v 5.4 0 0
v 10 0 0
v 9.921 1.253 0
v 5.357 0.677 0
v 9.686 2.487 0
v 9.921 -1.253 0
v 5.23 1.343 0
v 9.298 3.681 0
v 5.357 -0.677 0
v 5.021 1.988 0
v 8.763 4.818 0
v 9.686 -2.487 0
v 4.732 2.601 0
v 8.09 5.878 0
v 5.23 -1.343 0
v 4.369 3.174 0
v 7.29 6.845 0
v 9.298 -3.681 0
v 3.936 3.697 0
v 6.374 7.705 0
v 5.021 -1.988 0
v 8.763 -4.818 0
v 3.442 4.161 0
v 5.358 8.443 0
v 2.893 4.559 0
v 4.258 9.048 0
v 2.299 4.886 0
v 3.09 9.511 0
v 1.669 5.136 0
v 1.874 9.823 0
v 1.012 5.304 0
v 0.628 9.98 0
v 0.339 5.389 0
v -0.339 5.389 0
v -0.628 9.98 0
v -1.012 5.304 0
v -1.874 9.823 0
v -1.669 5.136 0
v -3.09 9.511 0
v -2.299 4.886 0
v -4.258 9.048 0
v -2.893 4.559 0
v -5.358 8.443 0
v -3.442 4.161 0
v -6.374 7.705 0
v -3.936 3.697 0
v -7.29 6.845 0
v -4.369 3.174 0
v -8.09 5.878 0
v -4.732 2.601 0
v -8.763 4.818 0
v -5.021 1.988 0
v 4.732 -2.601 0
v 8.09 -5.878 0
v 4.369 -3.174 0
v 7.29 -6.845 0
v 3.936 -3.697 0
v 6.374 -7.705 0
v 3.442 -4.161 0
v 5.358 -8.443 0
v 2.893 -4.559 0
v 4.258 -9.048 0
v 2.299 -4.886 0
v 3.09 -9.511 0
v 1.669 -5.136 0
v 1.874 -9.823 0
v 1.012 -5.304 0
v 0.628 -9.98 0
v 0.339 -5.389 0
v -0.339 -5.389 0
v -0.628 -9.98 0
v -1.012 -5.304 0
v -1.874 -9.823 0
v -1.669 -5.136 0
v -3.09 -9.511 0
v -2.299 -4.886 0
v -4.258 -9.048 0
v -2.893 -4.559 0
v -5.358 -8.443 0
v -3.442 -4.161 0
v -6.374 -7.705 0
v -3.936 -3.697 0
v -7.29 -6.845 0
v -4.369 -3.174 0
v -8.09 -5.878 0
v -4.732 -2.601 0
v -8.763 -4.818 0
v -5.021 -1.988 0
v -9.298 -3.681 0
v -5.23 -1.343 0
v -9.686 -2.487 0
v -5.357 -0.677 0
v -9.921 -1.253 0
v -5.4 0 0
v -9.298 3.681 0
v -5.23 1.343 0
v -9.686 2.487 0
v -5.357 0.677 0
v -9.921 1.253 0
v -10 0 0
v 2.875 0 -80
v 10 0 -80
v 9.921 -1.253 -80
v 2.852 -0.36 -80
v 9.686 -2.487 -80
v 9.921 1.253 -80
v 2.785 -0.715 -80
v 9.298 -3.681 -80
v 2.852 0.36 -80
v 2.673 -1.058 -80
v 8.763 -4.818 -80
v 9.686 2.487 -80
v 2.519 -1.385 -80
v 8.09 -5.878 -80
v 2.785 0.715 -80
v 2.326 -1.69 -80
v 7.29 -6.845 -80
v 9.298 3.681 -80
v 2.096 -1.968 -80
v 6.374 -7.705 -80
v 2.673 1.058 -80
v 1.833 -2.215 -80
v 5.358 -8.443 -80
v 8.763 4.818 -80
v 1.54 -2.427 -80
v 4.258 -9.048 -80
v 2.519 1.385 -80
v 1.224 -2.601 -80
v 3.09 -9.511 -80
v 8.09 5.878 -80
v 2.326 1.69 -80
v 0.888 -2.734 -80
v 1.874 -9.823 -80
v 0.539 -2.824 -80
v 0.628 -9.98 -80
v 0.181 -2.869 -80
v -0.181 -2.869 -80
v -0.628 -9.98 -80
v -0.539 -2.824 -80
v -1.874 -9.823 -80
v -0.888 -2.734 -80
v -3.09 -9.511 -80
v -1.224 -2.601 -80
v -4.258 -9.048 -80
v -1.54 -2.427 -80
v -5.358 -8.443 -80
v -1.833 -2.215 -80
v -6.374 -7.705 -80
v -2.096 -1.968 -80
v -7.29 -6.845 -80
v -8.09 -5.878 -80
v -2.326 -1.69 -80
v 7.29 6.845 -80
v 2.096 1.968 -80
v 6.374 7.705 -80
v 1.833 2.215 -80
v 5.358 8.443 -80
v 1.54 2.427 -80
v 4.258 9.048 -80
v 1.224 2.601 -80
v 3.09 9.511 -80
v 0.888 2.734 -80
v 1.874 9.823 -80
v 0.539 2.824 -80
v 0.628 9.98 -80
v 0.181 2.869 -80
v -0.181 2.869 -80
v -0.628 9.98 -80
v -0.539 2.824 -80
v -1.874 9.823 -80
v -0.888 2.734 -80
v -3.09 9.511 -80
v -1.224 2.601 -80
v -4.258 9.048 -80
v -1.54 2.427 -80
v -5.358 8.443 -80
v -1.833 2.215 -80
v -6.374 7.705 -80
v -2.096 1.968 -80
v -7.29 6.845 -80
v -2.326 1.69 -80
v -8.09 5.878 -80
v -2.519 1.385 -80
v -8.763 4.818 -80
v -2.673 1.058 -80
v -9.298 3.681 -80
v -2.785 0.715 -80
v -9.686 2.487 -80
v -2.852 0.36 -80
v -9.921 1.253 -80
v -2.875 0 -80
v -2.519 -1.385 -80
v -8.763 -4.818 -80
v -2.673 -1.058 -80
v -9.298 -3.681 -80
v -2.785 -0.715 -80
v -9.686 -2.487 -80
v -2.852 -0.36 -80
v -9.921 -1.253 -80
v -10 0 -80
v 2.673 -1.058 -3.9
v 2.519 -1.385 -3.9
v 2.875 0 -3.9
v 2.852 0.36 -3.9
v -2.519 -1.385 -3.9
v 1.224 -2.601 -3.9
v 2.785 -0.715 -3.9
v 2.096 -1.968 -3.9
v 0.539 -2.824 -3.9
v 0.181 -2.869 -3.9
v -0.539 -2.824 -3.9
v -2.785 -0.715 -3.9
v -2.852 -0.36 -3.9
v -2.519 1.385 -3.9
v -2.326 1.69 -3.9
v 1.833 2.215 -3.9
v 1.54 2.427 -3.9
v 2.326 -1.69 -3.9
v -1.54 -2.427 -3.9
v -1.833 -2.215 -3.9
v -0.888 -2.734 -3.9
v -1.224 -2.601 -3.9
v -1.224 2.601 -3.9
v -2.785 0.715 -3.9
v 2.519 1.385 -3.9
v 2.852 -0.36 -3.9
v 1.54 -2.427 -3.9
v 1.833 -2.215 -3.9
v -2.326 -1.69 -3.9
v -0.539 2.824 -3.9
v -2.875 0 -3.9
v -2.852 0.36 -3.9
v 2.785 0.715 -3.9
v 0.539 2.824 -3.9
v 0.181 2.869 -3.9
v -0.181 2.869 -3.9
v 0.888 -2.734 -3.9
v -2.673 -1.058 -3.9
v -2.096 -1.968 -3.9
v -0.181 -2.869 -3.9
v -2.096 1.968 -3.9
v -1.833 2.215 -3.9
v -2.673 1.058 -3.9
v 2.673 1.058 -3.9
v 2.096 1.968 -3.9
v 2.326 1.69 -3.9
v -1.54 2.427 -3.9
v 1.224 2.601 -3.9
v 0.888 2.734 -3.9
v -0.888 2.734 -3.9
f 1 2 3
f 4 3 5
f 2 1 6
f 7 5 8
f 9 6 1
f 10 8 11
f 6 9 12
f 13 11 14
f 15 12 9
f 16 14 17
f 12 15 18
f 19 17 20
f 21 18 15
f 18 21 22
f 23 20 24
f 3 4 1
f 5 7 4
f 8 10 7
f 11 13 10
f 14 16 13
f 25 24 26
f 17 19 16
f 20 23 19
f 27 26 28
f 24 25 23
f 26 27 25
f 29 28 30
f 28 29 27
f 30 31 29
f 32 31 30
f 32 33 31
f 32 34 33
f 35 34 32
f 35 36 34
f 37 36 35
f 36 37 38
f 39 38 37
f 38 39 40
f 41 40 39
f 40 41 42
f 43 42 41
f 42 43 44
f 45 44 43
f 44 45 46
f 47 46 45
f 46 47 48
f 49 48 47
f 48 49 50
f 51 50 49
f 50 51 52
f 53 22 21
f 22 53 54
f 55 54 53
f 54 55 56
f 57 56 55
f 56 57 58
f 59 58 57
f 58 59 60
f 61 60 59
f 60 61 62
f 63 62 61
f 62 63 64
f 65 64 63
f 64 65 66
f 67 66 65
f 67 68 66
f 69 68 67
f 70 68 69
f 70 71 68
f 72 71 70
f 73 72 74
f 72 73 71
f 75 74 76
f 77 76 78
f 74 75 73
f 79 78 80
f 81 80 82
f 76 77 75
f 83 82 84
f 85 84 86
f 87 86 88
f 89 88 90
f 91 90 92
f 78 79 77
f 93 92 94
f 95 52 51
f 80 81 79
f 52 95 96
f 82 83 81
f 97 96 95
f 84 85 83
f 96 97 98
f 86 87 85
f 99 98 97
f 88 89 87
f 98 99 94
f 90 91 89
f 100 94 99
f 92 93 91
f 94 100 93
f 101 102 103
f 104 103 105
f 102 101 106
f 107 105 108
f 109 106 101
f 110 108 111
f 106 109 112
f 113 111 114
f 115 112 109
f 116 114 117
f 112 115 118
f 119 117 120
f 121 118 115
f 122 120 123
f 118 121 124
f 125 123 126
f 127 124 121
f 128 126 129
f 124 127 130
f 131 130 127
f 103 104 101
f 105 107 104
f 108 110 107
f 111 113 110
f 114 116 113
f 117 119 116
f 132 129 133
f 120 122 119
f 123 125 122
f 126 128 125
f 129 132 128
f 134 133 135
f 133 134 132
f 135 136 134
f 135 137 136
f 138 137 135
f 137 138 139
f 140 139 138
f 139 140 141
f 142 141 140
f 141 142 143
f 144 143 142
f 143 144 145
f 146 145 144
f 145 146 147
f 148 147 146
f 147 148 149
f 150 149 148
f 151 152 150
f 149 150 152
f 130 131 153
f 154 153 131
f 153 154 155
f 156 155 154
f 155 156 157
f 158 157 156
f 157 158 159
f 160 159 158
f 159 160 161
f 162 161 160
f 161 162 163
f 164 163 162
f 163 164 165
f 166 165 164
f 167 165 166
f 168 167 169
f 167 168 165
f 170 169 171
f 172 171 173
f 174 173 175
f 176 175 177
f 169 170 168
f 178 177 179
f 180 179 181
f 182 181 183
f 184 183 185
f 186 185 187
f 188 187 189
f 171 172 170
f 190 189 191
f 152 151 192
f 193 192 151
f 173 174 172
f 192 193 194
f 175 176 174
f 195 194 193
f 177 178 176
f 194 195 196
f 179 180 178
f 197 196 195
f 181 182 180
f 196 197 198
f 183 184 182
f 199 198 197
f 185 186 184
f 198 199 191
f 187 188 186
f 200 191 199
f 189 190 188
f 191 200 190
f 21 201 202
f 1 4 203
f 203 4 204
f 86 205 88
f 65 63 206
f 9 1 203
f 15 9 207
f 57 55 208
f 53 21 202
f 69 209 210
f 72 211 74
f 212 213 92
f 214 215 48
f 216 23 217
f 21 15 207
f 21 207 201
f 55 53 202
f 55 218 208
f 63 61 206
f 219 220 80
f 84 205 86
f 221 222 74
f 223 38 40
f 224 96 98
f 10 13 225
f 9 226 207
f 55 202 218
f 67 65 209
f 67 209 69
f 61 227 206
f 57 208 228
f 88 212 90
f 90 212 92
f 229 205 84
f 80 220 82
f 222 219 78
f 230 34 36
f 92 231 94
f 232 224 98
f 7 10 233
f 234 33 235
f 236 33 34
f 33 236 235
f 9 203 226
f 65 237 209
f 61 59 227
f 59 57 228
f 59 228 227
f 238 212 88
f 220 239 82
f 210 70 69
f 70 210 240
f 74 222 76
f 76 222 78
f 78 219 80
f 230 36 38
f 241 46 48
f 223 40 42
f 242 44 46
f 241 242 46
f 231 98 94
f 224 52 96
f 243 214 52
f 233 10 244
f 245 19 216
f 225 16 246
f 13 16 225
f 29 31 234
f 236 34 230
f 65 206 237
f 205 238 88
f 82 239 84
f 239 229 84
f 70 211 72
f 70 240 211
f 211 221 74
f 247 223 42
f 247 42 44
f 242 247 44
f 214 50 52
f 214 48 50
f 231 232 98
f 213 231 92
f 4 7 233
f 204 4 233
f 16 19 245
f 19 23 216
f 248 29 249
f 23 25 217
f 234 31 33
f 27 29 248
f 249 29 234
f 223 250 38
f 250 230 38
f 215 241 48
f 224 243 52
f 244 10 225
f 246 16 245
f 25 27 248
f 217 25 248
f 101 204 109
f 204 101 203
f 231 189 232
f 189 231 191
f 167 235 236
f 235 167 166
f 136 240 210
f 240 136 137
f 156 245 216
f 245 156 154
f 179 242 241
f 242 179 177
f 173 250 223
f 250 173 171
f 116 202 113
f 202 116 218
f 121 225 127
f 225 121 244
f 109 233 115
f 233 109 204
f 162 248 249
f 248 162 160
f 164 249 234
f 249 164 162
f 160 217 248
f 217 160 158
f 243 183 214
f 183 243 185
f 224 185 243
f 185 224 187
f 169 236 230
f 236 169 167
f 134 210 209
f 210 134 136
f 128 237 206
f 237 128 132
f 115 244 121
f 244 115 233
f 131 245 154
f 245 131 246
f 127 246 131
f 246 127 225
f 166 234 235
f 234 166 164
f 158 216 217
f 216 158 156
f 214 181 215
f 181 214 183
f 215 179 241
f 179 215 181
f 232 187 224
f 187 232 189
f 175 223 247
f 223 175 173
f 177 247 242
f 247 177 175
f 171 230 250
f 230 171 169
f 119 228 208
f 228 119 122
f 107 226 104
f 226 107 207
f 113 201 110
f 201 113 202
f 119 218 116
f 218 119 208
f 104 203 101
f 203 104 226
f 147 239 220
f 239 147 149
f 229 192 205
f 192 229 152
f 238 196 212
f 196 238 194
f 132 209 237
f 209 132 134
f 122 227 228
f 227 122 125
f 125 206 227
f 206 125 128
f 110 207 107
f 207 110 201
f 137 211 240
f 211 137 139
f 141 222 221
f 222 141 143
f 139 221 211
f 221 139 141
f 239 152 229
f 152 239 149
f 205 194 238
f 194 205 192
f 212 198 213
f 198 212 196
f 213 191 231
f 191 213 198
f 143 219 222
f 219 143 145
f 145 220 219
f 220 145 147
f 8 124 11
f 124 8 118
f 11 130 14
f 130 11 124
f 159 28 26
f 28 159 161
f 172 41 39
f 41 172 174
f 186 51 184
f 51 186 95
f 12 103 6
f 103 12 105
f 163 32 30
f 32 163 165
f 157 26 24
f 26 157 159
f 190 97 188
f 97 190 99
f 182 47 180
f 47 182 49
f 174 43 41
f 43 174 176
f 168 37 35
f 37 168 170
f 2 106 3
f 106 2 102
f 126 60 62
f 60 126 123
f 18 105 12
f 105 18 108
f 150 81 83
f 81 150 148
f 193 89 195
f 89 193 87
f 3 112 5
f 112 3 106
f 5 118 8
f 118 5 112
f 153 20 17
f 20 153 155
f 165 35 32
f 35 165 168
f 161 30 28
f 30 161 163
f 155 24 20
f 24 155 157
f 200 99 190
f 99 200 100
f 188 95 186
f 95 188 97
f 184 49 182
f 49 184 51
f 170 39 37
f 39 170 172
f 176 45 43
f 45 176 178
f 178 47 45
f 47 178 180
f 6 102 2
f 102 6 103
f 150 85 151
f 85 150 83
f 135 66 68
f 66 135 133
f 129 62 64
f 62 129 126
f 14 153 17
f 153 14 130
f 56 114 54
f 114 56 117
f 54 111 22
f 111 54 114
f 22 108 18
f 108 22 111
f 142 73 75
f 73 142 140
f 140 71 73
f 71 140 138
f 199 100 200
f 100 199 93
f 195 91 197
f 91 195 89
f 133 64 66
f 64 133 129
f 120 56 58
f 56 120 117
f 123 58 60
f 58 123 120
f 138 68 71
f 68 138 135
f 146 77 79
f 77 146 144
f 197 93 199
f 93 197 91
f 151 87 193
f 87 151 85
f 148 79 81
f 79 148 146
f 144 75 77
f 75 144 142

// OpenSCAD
$fn = 50;


difference() {
	union() {
		translate(v = [0, 0, -80.0000000000]) {
			cylinder(h = 80, r = 10.0000000000);
		}
		cylinder(h = 0, r = 20.0000000000);
	}
	union() {
		translate(v = [0, 0, 0]) {
			rotate(a = [0, 0, 0]) {
				difference() {
					union() {
						#translate(v = [0, 0, -80.0000000000]) {
							cylinder(h = 80, r = 2.6000000000);
						}
						#translate(v = [0, 0, -3.9000000000]) {
							cylinder(h = 3.9000000000, r = 10.0000000000, r1 = 2.8750000000, r2 = 5.4000000000);
						}
						#translate(v = [0, 0, -80.0000000000]) {
							cylinder(h = 80, r = 2.8750000000);
						}
						#translate(v = [0, 0, -80.0000000000]) {
							cylinder(h = 80, r = 2.6000000000);
						}
					}
					union();
				}
			}
		}
	}
}
